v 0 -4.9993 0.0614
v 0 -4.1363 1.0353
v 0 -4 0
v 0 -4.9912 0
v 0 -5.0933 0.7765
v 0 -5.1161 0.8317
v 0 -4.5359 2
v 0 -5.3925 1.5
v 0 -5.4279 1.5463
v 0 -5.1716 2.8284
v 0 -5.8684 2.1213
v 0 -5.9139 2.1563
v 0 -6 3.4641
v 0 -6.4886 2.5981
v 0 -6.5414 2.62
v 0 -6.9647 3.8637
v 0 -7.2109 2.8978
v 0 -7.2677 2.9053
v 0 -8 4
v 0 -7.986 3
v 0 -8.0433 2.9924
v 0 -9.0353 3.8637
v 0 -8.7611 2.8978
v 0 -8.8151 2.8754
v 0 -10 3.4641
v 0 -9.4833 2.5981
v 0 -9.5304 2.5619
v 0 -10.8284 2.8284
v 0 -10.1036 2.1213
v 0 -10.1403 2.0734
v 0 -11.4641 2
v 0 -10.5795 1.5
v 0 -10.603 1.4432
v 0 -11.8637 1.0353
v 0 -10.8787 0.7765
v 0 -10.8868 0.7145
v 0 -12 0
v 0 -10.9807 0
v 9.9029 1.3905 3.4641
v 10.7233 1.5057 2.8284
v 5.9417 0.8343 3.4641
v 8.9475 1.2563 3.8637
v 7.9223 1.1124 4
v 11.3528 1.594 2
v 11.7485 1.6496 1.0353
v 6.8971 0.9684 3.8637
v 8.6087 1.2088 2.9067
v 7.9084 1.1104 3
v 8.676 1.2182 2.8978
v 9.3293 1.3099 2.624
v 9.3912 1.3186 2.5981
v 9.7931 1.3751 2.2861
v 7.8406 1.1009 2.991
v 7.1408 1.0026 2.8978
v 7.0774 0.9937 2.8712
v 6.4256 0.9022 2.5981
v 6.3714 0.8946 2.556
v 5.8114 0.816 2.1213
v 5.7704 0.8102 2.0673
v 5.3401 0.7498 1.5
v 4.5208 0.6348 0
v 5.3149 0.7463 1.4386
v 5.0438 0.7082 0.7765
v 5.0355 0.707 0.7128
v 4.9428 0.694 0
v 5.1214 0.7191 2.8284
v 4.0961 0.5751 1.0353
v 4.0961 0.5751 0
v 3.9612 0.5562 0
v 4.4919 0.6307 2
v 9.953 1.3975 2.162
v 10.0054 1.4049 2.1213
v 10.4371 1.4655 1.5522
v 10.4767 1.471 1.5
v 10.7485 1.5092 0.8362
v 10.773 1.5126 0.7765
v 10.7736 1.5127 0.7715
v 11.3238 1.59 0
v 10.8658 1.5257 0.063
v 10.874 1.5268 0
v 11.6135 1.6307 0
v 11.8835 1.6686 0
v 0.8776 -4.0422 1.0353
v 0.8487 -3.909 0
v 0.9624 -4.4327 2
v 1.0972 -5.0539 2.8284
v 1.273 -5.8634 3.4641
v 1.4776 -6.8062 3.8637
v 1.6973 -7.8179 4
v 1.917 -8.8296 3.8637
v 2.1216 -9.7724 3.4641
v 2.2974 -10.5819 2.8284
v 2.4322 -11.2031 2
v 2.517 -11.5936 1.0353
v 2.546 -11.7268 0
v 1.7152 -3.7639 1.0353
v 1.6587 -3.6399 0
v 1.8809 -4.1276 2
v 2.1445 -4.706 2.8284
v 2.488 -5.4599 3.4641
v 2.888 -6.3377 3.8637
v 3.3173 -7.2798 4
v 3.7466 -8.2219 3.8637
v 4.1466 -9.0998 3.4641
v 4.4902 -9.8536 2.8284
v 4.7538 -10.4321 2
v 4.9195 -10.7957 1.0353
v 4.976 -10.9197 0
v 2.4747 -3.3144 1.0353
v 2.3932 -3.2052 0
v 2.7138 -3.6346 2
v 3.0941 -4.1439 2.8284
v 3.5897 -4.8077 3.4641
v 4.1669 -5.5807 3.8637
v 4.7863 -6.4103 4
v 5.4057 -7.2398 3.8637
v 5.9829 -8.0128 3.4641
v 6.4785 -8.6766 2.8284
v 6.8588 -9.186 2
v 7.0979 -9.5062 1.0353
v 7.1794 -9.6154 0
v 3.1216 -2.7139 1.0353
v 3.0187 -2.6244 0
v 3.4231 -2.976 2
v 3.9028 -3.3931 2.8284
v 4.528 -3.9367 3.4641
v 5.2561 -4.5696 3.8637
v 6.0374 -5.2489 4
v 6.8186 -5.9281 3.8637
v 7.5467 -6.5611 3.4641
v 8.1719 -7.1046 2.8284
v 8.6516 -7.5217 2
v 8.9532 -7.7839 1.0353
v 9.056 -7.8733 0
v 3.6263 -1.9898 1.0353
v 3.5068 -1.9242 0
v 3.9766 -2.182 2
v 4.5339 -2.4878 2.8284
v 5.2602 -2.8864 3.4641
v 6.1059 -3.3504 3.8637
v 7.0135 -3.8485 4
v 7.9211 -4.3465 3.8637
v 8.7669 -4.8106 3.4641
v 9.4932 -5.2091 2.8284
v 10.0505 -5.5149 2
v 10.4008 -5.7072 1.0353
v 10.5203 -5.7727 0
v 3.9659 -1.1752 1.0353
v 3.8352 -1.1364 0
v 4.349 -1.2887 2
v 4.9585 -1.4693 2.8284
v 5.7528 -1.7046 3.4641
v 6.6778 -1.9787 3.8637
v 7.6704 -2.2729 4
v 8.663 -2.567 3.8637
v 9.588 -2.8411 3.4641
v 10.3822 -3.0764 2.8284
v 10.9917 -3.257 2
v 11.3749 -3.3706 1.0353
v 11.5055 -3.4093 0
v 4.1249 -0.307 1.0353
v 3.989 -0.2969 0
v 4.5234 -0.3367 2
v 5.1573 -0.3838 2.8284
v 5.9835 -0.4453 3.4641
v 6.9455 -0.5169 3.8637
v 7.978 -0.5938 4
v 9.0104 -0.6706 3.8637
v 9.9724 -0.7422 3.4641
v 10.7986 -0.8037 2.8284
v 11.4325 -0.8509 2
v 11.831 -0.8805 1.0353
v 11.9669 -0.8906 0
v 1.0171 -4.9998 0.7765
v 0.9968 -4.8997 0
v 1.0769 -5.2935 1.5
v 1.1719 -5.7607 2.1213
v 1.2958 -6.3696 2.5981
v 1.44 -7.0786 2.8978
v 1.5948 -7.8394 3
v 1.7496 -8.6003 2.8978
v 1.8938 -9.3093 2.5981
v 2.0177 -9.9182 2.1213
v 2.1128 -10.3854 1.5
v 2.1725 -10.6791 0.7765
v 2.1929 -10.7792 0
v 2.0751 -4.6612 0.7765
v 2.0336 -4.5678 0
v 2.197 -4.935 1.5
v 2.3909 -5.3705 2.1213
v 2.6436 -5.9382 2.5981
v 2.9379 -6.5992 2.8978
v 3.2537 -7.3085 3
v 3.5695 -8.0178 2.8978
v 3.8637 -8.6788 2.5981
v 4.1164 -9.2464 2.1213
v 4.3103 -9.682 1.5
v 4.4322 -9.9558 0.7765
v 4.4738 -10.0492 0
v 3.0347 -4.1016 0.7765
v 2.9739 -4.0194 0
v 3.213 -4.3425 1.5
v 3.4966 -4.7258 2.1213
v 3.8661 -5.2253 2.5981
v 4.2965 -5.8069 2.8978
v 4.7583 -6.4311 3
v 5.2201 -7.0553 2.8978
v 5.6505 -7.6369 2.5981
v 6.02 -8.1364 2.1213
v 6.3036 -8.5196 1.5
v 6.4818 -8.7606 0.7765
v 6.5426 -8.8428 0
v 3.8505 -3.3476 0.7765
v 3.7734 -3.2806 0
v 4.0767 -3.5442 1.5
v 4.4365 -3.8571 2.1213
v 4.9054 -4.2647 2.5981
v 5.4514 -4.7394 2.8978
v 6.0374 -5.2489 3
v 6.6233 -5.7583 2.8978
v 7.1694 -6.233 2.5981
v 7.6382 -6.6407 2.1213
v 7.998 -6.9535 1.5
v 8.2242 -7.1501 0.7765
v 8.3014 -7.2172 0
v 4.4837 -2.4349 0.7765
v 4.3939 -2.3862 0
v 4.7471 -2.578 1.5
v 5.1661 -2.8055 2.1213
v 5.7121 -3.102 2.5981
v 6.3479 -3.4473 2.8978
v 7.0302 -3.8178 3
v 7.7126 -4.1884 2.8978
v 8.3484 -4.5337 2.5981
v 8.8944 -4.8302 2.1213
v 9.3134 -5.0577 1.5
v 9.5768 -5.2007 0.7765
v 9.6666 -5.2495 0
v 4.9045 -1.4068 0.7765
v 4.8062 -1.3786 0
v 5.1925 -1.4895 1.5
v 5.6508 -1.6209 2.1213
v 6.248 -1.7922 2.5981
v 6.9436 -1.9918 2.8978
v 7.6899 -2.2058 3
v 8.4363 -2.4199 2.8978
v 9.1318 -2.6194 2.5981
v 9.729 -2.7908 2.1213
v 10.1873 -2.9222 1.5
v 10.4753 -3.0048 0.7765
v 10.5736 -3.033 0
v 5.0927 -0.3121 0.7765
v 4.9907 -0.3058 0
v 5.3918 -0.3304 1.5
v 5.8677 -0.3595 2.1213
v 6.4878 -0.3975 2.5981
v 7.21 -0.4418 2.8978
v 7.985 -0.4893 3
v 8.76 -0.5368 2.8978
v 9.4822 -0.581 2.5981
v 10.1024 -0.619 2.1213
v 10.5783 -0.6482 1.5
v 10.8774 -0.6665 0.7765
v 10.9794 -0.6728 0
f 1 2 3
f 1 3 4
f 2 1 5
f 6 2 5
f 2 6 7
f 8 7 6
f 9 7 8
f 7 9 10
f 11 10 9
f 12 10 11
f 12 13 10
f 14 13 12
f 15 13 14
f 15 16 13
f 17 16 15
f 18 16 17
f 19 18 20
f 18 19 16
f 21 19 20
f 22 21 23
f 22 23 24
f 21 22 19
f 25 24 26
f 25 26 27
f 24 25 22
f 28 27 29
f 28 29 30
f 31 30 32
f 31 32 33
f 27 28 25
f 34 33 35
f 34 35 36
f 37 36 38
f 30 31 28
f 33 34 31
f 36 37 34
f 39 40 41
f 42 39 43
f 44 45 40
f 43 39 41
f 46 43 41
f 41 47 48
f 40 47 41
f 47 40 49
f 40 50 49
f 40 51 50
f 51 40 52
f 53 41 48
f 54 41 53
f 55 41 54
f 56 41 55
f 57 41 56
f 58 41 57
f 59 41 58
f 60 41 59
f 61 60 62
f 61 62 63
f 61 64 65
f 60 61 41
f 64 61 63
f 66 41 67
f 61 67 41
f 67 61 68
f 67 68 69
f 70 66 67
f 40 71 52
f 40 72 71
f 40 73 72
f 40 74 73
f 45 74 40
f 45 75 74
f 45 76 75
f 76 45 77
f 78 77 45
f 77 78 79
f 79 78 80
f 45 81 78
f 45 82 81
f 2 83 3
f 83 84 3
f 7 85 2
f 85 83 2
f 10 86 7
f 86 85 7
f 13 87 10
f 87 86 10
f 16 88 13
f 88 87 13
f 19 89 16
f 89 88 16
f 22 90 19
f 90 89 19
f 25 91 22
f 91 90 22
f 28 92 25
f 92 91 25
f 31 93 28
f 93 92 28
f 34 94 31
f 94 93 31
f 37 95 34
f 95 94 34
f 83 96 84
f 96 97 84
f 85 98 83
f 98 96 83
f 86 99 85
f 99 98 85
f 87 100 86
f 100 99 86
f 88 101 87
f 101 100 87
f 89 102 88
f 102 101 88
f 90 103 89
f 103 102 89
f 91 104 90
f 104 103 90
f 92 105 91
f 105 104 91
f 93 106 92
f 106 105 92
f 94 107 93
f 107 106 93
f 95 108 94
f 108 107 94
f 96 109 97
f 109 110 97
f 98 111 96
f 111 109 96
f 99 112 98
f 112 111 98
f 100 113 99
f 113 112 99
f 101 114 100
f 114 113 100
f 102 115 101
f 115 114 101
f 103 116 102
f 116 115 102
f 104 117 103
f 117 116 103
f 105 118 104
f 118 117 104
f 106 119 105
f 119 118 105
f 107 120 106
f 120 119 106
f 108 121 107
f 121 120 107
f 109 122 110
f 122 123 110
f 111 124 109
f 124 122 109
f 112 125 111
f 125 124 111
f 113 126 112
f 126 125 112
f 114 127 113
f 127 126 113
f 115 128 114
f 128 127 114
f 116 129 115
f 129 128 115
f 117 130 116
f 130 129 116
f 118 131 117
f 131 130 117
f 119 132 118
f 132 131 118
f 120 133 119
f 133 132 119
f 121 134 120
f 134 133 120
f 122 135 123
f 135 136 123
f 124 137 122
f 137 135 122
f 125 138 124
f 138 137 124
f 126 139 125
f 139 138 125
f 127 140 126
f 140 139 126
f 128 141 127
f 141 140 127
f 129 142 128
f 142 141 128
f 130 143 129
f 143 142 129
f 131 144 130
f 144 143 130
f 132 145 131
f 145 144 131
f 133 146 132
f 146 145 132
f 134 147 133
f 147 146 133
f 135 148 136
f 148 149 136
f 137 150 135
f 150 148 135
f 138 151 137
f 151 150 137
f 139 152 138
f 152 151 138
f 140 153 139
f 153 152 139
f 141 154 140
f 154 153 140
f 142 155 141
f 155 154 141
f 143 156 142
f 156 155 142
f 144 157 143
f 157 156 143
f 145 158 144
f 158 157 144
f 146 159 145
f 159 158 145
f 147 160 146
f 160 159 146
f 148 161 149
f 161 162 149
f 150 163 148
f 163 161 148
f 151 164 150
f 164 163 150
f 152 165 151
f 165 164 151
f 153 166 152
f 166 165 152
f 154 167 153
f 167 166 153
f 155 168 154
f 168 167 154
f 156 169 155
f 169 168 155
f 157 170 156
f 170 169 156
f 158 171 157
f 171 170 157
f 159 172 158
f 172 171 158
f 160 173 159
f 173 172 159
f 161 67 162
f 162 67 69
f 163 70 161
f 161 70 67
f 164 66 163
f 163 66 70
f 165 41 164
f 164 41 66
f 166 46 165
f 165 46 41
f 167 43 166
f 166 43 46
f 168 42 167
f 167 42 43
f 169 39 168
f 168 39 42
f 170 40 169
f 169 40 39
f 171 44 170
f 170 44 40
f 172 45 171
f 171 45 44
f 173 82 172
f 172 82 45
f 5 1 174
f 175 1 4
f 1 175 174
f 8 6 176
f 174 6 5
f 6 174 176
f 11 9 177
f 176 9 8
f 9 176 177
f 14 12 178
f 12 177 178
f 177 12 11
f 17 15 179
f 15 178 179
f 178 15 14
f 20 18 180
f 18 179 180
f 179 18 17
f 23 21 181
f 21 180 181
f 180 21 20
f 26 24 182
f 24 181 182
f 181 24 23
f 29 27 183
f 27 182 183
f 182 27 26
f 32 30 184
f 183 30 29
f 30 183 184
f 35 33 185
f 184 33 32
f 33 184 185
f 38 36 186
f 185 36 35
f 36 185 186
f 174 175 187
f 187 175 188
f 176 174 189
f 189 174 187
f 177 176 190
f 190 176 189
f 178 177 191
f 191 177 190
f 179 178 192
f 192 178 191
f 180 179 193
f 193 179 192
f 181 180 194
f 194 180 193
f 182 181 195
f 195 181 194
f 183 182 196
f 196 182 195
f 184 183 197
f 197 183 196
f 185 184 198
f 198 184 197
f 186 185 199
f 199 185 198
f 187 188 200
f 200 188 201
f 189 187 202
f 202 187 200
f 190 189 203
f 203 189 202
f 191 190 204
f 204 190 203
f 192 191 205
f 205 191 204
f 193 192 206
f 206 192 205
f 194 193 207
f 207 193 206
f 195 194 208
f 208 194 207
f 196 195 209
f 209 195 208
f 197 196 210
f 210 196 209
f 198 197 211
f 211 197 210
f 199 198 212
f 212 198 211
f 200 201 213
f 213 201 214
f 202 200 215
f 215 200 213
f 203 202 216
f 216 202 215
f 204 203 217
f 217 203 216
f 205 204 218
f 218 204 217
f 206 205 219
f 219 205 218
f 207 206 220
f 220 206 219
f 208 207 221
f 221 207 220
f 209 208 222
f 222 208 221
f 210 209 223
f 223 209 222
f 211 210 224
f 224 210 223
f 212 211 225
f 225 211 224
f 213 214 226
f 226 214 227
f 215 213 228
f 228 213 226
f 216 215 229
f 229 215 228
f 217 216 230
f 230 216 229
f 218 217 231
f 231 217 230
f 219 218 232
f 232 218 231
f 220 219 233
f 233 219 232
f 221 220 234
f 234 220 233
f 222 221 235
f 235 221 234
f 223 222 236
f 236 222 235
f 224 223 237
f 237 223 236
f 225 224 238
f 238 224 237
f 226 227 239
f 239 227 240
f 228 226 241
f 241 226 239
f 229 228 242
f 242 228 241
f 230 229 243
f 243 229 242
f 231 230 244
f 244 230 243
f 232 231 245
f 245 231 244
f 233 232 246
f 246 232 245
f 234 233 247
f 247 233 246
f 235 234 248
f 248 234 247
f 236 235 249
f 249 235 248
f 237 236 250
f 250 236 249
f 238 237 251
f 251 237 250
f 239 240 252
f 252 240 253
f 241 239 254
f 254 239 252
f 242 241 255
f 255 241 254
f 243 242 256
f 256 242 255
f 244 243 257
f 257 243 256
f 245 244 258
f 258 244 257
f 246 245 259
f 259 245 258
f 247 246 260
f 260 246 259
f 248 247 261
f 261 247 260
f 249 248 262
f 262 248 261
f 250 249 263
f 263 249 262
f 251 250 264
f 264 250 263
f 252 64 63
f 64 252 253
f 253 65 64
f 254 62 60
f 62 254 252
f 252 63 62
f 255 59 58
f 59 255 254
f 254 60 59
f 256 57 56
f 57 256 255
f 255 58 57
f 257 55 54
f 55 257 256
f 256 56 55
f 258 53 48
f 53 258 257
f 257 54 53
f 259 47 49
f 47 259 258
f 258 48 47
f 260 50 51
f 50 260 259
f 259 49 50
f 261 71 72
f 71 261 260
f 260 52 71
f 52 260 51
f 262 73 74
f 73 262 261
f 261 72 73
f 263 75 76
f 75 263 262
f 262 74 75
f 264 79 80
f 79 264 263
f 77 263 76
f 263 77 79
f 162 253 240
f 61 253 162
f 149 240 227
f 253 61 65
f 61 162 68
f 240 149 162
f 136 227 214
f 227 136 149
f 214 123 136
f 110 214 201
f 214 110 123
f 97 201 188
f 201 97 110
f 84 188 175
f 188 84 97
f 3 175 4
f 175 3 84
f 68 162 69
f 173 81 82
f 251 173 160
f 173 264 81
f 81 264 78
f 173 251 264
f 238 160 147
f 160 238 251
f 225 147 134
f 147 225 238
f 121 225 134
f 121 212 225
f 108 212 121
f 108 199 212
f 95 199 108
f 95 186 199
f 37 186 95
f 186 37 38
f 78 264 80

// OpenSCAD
// file: ../build_environments.scad
// build_environments.scad: modules to build level sections
//

module pool(diameter=10.0, wall_height=2.0, step_width=3.0, connections=[])
{
    difference() {
        union() {
        difference() {
            cylinder(h=0.5,r1=diameter+step_width,r2=diameter+step_width,$fn=48);
            translate([0,0,-0.1])
                cylinder(h=0.7,r1=diameter,r2=diameter,$fn=48);
        }
        difference() {
            cylinder(h=wall_height,r1=diameter+step_width+1.0,r2=diameter+step_width+1.0,$fn=48);
            translate([0,0,-0.1])
                cylinder(h=wall_height+0.2,r1=diameter+step_width,r2=diameter+step_width,$fn=48);
        }
        }
    
        for (c = connections)
        {
            rotate([0,90,0]) {
                angle = atan2(c[1],c[0]);
                rotate([-angle,0,0]) {
                    cylinder(h=diameter+5.0,r1=c[2],r2=c[2],$fn=48);
                }
            }
        }
    }
}

module straight(length=10.0, width=2.0, dy1=0.0, dy2=0.0, dz=0.0)
{
    dims = [0, 0, 0, 0, 0, (dz/length)];
    matrix = [
        [ 1, dims[0], dims[1], 0 ],
        [ dims[2], 1, dims[4], 0 ],
        [ dims[5], dims[3], 1, 0 ],
        [ 0, 0, 0, 1 ]
    ];
    multmatrix(matrix)
    difference() {
        translate([dy1,0,0])
        union() {
            rotate([0,90,0]) {
                difference() {
                    cylinder(h=(length-dy1-dy2),r1=width+1.0,r2=width+1.0,$fn=24);
                    translate([0,0,-0.1])
                        cylinder(h=(length-dy1-dy2+0.2),r1=width,r2=width,$fn=24);
                }
                difference() {
                    cylinder(h=1.0,r1=width+2.0,r2=width+2.0,$fn=24);
                    translate([0,0,-0.1])
                        cylinder(h=1.2,r1=width,r2=width,$fn=24);
                }
                translate([0,0,(length-dy1-dy2)-1.0]) {
                    difference() {
                        cylinder(h=1.0,r1=width+2.0,r2=width+2.0,$fn=24);
                        translate([0,0,-0.1])
                            cylinder(h=1.2,r1=width,r2=width,$fn=24);
                    }
                }
            }
        }
        translate([0,0,-(2*width+4.0)/2])
            cube([3*length,3*length,2*width+4.0],center=true);
    }
}

module curve(p0=[0,0], center=[0,0], dir=1, angle=0.0, width=2.0)
{
    radius = sqrt((p0[0]-center[0])*(p0[0]-center[0]) + (p0[1]-center[1])*(p0[1]-center[1]));
    if (dir == 0) {
        difference() {
            rotate([0,0,-90])
            difference() {
                rotate_extrude(angle = angle, convexity = 10, $fn=32)
                    translate([radius, 0, 0])
                        circle(r = width+1.0,$fn=24);
                rotate([0,0,-1.0])
                    rotate_extrude(angle = angle+2.0, convexity = 10, $fn=32)
                        translate([radius, 0, 0])
                            circle(r = width,$fn=24);
            }
            translate([0,0,-(2*width+4.0)/2])
                cube([5*radius,5*radius,2*width+4.0],center=true);
        }
    }
    else {
        difference() {
            rotate([0,0,90])
            difference() {
                rotate_extrude(angle = -angle, convexity = 10, $fn=32)
                    translate([radius, 0, 0])
                        circle(r = width+1.0,$fn=24);
                rotate([0,0,1.0])
                    rotate_extrude(angle = -angle-2.0, convexity = 10, $fn=32)
                        translate([radius, 0, 0])
                            circle(r = width,$fn=24);
            }
            translate([0,0,-(2*width+4.0)/2])
                cube([5*radius,5*radius,2*width+4.0],center=true);
        }
    }

}

// test pool
//pool(diameter=12.0000, wall_height=3.0000, step_width=3.0000, connections=[[0.0000,-26.0000,2.0000], [23.6074,0.0000,2.0000]]);

// test straight, slope
//straight(length=26.0000, width=2.0000, dy1=11.8322, dy2=6.7082, dz=0.0000);
//straight(length=29.1549, width=12.0000, dy1=0.0000, dy2=0.0000, dz=-15.0000);

// test curve
//curve(p0=[23.6074, 0.0000], center=[23.6074, 5.0000], dir=0, angle=60.1011, width=2.0000);
//curve(p0=[33.6426, 12.4219], center=[37.9771, 9.9295], dir=1, angle=120.4627, width=2.0000);
// main file
use <../build_environments.scad>;
curve(p0=[-44.1598, 92.3543], center=[-43.6617, 84.3698], dir=0, angle=97.9927, width=3.0000);
